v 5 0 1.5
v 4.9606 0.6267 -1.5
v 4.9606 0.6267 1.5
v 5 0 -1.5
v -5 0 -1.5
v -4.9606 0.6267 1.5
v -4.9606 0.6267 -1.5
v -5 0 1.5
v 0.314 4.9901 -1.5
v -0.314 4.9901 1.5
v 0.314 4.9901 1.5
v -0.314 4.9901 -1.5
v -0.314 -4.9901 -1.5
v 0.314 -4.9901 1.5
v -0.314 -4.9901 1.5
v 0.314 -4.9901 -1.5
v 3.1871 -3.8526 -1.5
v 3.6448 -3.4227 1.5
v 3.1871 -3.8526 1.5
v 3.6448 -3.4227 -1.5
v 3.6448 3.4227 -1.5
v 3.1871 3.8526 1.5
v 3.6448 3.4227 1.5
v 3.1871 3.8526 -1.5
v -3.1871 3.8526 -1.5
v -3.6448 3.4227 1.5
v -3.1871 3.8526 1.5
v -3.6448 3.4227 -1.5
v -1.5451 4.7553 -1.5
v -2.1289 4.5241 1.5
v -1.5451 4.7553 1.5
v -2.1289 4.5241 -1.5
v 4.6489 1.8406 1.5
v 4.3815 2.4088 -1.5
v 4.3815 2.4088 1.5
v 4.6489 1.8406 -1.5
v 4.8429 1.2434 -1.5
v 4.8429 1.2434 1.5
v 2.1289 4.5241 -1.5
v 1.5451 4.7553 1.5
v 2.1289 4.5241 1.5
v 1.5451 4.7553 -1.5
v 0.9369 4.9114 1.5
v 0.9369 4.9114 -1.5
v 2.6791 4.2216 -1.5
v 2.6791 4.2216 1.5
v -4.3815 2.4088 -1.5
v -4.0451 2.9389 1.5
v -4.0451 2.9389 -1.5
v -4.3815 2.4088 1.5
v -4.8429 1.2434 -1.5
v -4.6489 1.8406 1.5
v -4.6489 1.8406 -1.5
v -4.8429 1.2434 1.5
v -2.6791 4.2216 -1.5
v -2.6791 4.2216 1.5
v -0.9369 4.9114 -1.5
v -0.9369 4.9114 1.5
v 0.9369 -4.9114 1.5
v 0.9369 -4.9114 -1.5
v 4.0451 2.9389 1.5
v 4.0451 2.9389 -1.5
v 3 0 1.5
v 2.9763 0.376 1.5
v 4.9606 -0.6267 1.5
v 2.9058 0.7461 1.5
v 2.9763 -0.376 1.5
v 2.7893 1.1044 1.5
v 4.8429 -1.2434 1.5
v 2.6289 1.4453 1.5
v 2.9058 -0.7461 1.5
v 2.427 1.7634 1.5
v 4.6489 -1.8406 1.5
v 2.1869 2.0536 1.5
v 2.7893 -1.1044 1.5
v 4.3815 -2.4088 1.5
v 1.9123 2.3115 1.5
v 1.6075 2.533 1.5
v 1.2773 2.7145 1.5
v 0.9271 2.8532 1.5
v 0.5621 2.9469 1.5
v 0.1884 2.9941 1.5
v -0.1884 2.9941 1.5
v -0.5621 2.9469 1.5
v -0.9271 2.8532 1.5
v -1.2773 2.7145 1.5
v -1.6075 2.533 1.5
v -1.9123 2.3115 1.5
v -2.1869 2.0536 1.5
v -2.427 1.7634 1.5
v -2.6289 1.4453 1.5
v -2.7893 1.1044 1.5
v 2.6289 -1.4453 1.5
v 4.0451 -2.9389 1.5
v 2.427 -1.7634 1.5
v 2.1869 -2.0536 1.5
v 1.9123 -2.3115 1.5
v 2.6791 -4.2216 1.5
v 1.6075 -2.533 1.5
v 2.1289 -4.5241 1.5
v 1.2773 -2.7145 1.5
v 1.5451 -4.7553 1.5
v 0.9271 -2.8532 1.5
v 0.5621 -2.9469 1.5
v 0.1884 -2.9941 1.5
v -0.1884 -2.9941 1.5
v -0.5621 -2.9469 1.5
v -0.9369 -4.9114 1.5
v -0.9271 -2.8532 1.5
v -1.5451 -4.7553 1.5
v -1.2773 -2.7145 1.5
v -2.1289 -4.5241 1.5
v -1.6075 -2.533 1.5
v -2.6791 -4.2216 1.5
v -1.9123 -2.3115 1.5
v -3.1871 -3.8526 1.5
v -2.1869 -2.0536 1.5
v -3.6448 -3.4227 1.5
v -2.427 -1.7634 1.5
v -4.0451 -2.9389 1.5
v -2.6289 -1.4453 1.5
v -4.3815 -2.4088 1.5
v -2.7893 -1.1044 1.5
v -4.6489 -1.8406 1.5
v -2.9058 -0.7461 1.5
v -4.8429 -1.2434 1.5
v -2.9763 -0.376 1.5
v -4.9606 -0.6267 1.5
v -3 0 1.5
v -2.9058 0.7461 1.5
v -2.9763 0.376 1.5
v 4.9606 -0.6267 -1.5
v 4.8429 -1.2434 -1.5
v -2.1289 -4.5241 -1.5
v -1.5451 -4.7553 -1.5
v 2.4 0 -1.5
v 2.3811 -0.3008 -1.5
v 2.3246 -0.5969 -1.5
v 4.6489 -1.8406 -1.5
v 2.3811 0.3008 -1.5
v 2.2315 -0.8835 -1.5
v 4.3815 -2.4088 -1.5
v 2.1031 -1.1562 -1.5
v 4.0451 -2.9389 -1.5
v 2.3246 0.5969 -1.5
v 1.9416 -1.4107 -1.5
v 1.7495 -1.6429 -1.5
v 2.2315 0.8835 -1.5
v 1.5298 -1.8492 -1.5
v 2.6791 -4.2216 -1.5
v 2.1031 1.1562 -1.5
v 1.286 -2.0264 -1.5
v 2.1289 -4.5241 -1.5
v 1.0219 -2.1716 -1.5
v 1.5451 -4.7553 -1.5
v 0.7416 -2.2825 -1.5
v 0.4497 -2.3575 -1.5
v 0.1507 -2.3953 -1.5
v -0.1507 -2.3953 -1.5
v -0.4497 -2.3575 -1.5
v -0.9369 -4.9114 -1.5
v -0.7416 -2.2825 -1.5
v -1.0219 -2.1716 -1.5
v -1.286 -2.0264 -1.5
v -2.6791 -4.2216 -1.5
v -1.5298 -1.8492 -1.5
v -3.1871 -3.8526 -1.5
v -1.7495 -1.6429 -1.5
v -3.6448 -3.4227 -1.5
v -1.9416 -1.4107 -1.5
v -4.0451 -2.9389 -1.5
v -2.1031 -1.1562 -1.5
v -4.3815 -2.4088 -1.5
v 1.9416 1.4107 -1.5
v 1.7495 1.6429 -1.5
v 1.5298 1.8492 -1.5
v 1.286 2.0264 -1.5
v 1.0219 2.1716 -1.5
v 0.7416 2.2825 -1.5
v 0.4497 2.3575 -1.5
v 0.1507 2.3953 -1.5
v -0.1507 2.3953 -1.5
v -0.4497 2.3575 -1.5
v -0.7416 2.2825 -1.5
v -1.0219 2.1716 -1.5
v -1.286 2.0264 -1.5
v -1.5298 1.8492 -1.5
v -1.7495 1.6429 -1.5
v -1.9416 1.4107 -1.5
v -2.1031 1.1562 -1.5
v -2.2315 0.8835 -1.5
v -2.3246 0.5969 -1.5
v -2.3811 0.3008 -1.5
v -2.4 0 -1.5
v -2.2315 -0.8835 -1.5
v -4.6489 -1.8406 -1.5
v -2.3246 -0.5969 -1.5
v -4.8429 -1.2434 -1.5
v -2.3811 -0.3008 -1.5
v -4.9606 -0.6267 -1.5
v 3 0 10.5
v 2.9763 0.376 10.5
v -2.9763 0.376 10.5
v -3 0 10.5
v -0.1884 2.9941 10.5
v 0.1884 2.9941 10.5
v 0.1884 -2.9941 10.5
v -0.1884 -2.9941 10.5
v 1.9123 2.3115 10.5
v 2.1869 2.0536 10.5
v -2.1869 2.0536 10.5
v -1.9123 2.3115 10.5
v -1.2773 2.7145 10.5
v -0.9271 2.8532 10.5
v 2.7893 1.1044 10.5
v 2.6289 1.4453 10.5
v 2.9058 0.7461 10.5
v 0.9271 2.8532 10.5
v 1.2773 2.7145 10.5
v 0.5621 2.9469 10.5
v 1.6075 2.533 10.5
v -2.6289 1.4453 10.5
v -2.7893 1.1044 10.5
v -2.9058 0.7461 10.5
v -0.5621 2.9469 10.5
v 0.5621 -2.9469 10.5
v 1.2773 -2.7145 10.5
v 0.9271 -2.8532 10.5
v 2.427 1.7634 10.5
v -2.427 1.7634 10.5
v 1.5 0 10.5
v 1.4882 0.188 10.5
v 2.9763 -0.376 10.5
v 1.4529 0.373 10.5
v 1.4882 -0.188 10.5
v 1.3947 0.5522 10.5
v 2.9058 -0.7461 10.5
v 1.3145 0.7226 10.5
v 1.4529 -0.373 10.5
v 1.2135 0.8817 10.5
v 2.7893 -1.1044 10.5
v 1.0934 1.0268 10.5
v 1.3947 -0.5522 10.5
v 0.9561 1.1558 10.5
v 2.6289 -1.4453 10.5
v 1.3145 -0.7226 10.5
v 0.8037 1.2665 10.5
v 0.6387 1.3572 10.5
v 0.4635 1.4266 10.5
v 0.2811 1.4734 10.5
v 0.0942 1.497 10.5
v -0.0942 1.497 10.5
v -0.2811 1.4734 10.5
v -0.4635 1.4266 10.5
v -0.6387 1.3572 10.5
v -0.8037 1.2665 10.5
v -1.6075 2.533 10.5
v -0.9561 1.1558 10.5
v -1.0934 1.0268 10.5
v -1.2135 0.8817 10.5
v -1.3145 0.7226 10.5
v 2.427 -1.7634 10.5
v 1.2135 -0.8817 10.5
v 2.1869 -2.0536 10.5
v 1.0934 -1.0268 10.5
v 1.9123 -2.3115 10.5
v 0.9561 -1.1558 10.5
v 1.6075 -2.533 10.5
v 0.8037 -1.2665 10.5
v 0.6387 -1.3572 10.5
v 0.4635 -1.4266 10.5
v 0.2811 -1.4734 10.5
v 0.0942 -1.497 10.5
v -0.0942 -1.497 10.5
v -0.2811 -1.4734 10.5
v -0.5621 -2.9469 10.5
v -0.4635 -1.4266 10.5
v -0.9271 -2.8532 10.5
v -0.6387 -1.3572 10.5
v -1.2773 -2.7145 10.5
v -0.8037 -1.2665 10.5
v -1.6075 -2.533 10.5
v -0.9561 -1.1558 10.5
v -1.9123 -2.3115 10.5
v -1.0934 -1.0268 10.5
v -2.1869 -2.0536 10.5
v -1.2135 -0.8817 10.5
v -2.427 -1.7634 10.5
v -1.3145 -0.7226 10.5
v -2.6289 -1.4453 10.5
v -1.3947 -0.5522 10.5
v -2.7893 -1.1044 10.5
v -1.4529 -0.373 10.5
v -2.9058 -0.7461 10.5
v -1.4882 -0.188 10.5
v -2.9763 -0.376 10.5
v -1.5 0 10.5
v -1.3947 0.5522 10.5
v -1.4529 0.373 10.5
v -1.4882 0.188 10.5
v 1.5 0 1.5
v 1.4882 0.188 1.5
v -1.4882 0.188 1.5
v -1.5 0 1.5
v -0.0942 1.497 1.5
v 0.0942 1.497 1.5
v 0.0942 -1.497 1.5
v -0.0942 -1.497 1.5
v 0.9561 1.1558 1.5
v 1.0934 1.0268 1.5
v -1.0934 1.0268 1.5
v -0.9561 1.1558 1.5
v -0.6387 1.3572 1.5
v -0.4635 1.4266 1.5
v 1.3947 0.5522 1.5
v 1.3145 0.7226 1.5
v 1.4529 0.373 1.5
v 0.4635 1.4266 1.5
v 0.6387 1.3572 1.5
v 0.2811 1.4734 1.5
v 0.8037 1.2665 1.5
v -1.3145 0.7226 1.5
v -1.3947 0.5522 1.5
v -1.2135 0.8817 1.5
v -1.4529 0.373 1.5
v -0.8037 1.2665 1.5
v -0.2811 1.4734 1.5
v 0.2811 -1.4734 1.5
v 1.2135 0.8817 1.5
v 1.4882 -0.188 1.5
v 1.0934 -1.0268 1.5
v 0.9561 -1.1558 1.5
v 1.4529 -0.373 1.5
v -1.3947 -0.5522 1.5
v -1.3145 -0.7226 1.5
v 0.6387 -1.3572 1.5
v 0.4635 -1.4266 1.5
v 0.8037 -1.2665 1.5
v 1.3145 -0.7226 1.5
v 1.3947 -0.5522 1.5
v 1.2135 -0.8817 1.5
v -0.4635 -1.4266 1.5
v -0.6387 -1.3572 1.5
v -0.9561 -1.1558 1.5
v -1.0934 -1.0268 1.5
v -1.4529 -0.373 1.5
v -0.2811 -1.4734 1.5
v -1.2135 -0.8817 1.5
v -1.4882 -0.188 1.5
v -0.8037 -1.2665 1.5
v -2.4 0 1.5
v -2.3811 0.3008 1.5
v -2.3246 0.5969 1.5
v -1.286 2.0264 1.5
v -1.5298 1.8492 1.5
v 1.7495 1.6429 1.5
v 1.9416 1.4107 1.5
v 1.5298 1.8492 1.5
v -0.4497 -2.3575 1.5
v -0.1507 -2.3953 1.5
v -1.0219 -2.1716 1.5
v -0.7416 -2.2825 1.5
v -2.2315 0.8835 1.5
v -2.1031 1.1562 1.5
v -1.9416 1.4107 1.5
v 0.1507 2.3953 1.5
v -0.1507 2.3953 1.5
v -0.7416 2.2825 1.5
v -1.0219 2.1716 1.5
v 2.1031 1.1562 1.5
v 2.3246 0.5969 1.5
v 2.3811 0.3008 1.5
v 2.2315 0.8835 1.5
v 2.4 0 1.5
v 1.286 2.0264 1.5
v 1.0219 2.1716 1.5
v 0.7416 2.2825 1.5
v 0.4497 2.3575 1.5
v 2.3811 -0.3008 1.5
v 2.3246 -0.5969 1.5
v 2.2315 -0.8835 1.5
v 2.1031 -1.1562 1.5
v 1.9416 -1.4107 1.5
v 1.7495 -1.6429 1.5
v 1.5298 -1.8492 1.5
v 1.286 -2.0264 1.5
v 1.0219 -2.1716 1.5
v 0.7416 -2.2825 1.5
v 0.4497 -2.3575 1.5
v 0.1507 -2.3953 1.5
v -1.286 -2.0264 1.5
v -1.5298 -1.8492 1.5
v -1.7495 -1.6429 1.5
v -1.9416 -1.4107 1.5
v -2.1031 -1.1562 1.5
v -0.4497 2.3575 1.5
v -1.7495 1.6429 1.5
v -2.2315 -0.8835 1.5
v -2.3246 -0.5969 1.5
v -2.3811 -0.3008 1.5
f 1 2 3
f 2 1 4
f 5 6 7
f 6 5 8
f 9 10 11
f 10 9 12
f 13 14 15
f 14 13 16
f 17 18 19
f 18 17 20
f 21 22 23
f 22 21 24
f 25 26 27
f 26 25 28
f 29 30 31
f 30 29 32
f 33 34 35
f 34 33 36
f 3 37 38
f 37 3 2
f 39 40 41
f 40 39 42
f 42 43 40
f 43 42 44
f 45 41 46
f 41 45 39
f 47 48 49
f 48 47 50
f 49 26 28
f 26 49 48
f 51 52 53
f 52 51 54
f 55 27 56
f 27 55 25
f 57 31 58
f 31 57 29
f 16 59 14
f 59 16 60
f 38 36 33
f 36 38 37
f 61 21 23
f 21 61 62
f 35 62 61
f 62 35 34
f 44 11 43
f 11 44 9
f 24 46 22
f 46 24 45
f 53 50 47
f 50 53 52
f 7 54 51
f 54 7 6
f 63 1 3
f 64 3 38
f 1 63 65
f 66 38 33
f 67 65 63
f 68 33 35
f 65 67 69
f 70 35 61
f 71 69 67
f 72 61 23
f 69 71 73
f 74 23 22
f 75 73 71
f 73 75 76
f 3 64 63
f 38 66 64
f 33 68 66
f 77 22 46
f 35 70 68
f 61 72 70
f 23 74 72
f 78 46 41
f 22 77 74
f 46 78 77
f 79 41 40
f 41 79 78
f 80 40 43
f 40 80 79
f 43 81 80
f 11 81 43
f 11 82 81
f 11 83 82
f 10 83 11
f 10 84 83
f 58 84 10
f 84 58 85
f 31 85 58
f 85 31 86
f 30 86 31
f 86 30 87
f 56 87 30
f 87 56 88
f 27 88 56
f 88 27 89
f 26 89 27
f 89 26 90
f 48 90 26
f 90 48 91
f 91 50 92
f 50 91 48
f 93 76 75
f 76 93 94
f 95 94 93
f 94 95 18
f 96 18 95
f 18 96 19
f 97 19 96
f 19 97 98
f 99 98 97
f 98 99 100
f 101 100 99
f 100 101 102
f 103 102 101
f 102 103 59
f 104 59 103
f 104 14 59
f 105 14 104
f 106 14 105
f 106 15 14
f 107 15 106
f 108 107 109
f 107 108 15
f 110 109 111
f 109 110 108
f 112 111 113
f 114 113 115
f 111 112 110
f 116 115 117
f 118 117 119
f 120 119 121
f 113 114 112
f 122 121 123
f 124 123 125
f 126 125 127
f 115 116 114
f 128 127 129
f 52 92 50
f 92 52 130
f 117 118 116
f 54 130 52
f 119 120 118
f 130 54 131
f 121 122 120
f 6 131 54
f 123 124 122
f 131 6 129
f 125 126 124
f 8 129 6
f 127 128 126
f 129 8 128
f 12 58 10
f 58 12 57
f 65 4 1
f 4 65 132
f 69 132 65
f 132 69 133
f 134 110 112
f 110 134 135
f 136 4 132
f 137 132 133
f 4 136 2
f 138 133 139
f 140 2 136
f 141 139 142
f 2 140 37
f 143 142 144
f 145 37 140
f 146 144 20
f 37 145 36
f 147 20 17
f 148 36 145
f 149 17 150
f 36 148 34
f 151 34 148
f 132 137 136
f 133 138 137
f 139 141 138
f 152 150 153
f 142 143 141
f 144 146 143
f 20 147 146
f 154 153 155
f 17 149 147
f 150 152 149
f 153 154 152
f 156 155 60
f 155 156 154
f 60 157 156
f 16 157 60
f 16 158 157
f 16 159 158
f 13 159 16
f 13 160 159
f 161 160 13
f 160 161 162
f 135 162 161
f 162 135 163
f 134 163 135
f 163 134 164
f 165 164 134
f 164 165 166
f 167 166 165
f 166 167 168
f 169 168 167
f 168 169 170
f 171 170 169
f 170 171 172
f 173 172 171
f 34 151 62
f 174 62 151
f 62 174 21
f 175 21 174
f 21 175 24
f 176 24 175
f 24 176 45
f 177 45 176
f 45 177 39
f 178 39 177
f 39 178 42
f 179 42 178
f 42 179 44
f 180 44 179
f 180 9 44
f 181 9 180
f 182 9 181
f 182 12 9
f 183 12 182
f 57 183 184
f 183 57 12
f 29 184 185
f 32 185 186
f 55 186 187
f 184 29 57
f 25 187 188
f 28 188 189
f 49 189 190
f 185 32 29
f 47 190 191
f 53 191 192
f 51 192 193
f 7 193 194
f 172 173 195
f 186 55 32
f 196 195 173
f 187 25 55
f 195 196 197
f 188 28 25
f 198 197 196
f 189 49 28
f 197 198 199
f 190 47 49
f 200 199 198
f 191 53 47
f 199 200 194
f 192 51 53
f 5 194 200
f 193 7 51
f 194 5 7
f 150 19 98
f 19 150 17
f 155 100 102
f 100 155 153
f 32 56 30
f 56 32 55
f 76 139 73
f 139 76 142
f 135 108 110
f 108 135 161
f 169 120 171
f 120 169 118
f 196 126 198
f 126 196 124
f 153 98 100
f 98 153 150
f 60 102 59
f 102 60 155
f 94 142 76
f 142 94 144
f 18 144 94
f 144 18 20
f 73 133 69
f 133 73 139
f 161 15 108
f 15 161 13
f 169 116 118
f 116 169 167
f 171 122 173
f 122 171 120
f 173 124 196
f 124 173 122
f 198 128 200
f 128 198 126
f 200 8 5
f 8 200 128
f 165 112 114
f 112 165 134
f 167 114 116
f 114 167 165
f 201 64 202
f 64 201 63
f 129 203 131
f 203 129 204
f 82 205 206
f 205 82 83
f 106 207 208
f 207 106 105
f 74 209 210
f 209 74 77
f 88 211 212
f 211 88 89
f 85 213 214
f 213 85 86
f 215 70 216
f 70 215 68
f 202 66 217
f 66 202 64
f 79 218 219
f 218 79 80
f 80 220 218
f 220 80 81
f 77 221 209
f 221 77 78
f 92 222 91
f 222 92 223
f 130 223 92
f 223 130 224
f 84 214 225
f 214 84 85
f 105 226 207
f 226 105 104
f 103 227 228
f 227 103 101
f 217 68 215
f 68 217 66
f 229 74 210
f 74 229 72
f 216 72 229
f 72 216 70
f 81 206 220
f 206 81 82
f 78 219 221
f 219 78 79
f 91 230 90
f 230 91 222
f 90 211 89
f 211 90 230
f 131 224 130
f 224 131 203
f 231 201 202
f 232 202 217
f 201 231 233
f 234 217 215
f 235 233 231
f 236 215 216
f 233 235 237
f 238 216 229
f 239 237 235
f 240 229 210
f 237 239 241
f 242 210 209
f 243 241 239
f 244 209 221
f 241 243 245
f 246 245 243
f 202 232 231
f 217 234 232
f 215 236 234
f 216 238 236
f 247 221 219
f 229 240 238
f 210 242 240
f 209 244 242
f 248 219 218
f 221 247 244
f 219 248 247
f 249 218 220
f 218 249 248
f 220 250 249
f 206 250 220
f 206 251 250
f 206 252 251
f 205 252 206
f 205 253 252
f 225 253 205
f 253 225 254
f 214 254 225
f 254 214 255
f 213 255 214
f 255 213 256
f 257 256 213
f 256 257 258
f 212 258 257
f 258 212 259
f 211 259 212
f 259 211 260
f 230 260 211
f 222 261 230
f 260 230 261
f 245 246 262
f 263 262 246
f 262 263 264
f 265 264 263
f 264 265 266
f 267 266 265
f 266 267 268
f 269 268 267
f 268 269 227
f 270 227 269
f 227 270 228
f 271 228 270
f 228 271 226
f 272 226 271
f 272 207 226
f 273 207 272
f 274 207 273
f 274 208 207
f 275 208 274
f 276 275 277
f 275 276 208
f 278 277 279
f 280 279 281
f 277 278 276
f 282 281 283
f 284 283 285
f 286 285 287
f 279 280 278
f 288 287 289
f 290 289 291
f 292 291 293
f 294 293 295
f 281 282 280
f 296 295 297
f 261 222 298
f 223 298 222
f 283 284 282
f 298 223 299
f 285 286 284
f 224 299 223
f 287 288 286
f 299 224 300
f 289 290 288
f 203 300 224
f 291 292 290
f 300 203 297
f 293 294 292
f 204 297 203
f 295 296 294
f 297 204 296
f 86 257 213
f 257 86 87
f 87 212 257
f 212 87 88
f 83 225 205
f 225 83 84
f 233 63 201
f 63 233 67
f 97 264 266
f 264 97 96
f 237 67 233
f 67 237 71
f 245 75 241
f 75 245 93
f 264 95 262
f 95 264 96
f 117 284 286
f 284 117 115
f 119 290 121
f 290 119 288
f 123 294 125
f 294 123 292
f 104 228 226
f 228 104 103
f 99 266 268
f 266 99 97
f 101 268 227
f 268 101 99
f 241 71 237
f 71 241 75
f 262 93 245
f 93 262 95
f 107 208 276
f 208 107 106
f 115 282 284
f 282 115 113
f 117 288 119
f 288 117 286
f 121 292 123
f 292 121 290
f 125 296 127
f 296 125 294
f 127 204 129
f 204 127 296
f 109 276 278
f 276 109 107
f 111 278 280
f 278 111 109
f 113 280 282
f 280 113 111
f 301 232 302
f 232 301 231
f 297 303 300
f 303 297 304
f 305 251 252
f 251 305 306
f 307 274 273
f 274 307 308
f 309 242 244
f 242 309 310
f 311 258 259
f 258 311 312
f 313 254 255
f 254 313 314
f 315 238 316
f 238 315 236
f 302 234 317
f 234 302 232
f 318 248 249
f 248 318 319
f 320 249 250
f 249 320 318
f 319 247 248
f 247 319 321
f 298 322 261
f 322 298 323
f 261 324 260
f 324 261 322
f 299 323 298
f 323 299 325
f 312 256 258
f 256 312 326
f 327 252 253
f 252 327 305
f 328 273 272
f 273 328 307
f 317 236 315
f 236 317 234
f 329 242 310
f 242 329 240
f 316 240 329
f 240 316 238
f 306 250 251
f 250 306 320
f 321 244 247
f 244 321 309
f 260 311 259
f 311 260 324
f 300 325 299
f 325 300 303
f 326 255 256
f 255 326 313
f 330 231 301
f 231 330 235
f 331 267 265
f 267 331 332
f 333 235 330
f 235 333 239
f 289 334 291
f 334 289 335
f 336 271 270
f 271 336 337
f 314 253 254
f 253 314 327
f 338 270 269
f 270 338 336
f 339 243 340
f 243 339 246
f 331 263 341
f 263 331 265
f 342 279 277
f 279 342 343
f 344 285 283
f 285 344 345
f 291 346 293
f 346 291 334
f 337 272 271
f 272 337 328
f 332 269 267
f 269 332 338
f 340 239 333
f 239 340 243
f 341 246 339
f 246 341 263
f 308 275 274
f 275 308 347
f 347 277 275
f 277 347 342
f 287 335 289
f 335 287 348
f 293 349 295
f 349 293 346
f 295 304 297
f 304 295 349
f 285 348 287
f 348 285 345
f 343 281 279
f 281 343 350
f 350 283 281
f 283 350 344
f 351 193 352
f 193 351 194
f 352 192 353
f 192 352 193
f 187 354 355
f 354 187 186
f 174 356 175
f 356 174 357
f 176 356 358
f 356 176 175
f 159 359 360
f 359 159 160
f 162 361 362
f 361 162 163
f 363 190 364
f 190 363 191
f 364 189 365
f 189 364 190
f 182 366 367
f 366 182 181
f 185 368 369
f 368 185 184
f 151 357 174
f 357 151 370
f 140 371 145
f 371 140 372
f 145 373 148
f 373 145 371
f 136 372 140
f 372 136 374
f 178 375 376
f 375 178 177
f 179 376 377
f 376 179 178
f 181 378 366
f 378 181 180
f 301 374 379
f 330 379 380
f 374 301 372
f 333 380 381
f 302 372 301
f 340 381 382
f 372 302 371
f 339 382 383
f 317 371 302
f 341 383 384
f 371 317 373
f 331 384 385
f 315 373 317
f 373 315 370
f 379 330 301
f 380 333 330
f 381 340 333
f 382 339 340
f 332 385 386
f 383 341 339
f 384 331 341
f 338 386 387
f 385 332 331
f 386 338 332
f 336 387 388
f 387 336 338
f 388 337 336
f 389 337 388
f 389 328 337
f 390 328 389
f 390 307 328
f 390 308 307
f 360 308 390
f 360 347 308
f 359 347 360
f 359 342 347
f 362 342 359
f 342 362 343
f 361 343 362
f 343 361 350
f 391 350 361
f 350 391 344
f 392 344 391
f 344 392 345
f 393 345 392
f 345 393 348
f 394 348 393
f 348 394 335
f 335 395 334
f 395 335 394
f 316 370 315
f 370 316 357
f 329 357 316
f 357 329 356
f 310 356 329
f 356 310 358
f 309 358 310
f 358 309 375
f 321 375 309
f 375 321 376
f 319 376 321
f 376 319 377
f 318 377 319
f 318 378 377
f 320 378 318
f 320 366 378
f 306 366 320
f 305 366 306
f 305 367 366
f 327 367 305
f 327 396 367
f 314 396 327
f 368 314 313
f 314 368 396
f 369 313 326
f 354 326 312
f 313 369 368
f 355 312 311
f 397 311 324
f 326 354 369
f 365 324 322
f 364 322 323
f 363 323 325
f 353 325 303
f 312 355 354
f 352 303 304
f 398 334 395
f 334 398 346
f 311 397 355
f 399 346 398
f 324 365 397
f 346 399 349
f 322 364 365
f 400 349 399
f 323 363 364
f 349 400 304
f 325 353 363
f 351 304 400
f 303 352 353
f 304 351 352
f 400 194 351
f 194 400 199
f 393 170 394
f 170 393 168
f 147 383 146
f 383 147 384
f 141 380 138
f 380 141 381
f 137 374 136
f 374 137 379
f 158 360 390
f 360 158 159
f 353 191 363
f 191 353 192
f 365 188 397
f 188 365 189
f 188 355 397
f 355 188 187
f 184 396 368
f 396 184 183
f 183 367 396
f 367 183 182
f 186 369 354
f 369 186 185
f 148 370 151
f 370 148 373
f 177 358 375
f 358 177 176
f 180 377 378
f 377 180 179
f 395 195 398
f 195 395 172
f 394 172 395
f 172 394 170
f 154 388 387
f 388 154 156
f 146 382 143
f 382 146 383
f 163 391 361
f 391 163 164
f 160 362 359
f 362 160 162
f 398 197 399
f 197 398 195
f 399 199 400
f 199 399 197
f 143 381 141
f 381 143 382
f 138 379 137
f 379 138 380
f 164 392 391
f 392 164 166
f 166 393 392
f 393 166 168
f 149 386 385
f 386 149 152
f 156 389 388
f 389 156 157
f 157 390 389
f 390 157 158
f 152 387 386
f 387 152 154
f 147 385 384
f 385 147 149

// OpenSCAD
$fn = 50;


difference() {
	union() {
		translate(v = [0, 0, -1.5000000000]) {
			rotate(a = [0, 0, 0]) {
				cylinder(h = 3, r = 5.0000000000);
			}
		}
		translate(v = [0, 0, -1.5000000000]) {
			rotate(a = [0, 0, 0]) {
				cylinder(h = 12, r = 3.0000000000);
			}
		}
	}
	union() {
		translate(v = [0, 0, -125.0000000000]) {
			rotate(a = [0, 0, 0]) {
				cylinder(h = 250, r = 1.5000000000);
			}
		}
		#translate(v = [0, 0, 1.5000000000]) {
			rotate(a = [0, 180, 0]) {
				cylinder(h = 3, r1 = 2.4000000000, r2 = 2.4000000000);
			}
		}
		#translate(v = [0, 0, 10.5000000000]) {
			rotate(a = [0, 180, 0]) {
				cylinder(h = 12, r = 1.5000000000);
			}
		}
	}
}
